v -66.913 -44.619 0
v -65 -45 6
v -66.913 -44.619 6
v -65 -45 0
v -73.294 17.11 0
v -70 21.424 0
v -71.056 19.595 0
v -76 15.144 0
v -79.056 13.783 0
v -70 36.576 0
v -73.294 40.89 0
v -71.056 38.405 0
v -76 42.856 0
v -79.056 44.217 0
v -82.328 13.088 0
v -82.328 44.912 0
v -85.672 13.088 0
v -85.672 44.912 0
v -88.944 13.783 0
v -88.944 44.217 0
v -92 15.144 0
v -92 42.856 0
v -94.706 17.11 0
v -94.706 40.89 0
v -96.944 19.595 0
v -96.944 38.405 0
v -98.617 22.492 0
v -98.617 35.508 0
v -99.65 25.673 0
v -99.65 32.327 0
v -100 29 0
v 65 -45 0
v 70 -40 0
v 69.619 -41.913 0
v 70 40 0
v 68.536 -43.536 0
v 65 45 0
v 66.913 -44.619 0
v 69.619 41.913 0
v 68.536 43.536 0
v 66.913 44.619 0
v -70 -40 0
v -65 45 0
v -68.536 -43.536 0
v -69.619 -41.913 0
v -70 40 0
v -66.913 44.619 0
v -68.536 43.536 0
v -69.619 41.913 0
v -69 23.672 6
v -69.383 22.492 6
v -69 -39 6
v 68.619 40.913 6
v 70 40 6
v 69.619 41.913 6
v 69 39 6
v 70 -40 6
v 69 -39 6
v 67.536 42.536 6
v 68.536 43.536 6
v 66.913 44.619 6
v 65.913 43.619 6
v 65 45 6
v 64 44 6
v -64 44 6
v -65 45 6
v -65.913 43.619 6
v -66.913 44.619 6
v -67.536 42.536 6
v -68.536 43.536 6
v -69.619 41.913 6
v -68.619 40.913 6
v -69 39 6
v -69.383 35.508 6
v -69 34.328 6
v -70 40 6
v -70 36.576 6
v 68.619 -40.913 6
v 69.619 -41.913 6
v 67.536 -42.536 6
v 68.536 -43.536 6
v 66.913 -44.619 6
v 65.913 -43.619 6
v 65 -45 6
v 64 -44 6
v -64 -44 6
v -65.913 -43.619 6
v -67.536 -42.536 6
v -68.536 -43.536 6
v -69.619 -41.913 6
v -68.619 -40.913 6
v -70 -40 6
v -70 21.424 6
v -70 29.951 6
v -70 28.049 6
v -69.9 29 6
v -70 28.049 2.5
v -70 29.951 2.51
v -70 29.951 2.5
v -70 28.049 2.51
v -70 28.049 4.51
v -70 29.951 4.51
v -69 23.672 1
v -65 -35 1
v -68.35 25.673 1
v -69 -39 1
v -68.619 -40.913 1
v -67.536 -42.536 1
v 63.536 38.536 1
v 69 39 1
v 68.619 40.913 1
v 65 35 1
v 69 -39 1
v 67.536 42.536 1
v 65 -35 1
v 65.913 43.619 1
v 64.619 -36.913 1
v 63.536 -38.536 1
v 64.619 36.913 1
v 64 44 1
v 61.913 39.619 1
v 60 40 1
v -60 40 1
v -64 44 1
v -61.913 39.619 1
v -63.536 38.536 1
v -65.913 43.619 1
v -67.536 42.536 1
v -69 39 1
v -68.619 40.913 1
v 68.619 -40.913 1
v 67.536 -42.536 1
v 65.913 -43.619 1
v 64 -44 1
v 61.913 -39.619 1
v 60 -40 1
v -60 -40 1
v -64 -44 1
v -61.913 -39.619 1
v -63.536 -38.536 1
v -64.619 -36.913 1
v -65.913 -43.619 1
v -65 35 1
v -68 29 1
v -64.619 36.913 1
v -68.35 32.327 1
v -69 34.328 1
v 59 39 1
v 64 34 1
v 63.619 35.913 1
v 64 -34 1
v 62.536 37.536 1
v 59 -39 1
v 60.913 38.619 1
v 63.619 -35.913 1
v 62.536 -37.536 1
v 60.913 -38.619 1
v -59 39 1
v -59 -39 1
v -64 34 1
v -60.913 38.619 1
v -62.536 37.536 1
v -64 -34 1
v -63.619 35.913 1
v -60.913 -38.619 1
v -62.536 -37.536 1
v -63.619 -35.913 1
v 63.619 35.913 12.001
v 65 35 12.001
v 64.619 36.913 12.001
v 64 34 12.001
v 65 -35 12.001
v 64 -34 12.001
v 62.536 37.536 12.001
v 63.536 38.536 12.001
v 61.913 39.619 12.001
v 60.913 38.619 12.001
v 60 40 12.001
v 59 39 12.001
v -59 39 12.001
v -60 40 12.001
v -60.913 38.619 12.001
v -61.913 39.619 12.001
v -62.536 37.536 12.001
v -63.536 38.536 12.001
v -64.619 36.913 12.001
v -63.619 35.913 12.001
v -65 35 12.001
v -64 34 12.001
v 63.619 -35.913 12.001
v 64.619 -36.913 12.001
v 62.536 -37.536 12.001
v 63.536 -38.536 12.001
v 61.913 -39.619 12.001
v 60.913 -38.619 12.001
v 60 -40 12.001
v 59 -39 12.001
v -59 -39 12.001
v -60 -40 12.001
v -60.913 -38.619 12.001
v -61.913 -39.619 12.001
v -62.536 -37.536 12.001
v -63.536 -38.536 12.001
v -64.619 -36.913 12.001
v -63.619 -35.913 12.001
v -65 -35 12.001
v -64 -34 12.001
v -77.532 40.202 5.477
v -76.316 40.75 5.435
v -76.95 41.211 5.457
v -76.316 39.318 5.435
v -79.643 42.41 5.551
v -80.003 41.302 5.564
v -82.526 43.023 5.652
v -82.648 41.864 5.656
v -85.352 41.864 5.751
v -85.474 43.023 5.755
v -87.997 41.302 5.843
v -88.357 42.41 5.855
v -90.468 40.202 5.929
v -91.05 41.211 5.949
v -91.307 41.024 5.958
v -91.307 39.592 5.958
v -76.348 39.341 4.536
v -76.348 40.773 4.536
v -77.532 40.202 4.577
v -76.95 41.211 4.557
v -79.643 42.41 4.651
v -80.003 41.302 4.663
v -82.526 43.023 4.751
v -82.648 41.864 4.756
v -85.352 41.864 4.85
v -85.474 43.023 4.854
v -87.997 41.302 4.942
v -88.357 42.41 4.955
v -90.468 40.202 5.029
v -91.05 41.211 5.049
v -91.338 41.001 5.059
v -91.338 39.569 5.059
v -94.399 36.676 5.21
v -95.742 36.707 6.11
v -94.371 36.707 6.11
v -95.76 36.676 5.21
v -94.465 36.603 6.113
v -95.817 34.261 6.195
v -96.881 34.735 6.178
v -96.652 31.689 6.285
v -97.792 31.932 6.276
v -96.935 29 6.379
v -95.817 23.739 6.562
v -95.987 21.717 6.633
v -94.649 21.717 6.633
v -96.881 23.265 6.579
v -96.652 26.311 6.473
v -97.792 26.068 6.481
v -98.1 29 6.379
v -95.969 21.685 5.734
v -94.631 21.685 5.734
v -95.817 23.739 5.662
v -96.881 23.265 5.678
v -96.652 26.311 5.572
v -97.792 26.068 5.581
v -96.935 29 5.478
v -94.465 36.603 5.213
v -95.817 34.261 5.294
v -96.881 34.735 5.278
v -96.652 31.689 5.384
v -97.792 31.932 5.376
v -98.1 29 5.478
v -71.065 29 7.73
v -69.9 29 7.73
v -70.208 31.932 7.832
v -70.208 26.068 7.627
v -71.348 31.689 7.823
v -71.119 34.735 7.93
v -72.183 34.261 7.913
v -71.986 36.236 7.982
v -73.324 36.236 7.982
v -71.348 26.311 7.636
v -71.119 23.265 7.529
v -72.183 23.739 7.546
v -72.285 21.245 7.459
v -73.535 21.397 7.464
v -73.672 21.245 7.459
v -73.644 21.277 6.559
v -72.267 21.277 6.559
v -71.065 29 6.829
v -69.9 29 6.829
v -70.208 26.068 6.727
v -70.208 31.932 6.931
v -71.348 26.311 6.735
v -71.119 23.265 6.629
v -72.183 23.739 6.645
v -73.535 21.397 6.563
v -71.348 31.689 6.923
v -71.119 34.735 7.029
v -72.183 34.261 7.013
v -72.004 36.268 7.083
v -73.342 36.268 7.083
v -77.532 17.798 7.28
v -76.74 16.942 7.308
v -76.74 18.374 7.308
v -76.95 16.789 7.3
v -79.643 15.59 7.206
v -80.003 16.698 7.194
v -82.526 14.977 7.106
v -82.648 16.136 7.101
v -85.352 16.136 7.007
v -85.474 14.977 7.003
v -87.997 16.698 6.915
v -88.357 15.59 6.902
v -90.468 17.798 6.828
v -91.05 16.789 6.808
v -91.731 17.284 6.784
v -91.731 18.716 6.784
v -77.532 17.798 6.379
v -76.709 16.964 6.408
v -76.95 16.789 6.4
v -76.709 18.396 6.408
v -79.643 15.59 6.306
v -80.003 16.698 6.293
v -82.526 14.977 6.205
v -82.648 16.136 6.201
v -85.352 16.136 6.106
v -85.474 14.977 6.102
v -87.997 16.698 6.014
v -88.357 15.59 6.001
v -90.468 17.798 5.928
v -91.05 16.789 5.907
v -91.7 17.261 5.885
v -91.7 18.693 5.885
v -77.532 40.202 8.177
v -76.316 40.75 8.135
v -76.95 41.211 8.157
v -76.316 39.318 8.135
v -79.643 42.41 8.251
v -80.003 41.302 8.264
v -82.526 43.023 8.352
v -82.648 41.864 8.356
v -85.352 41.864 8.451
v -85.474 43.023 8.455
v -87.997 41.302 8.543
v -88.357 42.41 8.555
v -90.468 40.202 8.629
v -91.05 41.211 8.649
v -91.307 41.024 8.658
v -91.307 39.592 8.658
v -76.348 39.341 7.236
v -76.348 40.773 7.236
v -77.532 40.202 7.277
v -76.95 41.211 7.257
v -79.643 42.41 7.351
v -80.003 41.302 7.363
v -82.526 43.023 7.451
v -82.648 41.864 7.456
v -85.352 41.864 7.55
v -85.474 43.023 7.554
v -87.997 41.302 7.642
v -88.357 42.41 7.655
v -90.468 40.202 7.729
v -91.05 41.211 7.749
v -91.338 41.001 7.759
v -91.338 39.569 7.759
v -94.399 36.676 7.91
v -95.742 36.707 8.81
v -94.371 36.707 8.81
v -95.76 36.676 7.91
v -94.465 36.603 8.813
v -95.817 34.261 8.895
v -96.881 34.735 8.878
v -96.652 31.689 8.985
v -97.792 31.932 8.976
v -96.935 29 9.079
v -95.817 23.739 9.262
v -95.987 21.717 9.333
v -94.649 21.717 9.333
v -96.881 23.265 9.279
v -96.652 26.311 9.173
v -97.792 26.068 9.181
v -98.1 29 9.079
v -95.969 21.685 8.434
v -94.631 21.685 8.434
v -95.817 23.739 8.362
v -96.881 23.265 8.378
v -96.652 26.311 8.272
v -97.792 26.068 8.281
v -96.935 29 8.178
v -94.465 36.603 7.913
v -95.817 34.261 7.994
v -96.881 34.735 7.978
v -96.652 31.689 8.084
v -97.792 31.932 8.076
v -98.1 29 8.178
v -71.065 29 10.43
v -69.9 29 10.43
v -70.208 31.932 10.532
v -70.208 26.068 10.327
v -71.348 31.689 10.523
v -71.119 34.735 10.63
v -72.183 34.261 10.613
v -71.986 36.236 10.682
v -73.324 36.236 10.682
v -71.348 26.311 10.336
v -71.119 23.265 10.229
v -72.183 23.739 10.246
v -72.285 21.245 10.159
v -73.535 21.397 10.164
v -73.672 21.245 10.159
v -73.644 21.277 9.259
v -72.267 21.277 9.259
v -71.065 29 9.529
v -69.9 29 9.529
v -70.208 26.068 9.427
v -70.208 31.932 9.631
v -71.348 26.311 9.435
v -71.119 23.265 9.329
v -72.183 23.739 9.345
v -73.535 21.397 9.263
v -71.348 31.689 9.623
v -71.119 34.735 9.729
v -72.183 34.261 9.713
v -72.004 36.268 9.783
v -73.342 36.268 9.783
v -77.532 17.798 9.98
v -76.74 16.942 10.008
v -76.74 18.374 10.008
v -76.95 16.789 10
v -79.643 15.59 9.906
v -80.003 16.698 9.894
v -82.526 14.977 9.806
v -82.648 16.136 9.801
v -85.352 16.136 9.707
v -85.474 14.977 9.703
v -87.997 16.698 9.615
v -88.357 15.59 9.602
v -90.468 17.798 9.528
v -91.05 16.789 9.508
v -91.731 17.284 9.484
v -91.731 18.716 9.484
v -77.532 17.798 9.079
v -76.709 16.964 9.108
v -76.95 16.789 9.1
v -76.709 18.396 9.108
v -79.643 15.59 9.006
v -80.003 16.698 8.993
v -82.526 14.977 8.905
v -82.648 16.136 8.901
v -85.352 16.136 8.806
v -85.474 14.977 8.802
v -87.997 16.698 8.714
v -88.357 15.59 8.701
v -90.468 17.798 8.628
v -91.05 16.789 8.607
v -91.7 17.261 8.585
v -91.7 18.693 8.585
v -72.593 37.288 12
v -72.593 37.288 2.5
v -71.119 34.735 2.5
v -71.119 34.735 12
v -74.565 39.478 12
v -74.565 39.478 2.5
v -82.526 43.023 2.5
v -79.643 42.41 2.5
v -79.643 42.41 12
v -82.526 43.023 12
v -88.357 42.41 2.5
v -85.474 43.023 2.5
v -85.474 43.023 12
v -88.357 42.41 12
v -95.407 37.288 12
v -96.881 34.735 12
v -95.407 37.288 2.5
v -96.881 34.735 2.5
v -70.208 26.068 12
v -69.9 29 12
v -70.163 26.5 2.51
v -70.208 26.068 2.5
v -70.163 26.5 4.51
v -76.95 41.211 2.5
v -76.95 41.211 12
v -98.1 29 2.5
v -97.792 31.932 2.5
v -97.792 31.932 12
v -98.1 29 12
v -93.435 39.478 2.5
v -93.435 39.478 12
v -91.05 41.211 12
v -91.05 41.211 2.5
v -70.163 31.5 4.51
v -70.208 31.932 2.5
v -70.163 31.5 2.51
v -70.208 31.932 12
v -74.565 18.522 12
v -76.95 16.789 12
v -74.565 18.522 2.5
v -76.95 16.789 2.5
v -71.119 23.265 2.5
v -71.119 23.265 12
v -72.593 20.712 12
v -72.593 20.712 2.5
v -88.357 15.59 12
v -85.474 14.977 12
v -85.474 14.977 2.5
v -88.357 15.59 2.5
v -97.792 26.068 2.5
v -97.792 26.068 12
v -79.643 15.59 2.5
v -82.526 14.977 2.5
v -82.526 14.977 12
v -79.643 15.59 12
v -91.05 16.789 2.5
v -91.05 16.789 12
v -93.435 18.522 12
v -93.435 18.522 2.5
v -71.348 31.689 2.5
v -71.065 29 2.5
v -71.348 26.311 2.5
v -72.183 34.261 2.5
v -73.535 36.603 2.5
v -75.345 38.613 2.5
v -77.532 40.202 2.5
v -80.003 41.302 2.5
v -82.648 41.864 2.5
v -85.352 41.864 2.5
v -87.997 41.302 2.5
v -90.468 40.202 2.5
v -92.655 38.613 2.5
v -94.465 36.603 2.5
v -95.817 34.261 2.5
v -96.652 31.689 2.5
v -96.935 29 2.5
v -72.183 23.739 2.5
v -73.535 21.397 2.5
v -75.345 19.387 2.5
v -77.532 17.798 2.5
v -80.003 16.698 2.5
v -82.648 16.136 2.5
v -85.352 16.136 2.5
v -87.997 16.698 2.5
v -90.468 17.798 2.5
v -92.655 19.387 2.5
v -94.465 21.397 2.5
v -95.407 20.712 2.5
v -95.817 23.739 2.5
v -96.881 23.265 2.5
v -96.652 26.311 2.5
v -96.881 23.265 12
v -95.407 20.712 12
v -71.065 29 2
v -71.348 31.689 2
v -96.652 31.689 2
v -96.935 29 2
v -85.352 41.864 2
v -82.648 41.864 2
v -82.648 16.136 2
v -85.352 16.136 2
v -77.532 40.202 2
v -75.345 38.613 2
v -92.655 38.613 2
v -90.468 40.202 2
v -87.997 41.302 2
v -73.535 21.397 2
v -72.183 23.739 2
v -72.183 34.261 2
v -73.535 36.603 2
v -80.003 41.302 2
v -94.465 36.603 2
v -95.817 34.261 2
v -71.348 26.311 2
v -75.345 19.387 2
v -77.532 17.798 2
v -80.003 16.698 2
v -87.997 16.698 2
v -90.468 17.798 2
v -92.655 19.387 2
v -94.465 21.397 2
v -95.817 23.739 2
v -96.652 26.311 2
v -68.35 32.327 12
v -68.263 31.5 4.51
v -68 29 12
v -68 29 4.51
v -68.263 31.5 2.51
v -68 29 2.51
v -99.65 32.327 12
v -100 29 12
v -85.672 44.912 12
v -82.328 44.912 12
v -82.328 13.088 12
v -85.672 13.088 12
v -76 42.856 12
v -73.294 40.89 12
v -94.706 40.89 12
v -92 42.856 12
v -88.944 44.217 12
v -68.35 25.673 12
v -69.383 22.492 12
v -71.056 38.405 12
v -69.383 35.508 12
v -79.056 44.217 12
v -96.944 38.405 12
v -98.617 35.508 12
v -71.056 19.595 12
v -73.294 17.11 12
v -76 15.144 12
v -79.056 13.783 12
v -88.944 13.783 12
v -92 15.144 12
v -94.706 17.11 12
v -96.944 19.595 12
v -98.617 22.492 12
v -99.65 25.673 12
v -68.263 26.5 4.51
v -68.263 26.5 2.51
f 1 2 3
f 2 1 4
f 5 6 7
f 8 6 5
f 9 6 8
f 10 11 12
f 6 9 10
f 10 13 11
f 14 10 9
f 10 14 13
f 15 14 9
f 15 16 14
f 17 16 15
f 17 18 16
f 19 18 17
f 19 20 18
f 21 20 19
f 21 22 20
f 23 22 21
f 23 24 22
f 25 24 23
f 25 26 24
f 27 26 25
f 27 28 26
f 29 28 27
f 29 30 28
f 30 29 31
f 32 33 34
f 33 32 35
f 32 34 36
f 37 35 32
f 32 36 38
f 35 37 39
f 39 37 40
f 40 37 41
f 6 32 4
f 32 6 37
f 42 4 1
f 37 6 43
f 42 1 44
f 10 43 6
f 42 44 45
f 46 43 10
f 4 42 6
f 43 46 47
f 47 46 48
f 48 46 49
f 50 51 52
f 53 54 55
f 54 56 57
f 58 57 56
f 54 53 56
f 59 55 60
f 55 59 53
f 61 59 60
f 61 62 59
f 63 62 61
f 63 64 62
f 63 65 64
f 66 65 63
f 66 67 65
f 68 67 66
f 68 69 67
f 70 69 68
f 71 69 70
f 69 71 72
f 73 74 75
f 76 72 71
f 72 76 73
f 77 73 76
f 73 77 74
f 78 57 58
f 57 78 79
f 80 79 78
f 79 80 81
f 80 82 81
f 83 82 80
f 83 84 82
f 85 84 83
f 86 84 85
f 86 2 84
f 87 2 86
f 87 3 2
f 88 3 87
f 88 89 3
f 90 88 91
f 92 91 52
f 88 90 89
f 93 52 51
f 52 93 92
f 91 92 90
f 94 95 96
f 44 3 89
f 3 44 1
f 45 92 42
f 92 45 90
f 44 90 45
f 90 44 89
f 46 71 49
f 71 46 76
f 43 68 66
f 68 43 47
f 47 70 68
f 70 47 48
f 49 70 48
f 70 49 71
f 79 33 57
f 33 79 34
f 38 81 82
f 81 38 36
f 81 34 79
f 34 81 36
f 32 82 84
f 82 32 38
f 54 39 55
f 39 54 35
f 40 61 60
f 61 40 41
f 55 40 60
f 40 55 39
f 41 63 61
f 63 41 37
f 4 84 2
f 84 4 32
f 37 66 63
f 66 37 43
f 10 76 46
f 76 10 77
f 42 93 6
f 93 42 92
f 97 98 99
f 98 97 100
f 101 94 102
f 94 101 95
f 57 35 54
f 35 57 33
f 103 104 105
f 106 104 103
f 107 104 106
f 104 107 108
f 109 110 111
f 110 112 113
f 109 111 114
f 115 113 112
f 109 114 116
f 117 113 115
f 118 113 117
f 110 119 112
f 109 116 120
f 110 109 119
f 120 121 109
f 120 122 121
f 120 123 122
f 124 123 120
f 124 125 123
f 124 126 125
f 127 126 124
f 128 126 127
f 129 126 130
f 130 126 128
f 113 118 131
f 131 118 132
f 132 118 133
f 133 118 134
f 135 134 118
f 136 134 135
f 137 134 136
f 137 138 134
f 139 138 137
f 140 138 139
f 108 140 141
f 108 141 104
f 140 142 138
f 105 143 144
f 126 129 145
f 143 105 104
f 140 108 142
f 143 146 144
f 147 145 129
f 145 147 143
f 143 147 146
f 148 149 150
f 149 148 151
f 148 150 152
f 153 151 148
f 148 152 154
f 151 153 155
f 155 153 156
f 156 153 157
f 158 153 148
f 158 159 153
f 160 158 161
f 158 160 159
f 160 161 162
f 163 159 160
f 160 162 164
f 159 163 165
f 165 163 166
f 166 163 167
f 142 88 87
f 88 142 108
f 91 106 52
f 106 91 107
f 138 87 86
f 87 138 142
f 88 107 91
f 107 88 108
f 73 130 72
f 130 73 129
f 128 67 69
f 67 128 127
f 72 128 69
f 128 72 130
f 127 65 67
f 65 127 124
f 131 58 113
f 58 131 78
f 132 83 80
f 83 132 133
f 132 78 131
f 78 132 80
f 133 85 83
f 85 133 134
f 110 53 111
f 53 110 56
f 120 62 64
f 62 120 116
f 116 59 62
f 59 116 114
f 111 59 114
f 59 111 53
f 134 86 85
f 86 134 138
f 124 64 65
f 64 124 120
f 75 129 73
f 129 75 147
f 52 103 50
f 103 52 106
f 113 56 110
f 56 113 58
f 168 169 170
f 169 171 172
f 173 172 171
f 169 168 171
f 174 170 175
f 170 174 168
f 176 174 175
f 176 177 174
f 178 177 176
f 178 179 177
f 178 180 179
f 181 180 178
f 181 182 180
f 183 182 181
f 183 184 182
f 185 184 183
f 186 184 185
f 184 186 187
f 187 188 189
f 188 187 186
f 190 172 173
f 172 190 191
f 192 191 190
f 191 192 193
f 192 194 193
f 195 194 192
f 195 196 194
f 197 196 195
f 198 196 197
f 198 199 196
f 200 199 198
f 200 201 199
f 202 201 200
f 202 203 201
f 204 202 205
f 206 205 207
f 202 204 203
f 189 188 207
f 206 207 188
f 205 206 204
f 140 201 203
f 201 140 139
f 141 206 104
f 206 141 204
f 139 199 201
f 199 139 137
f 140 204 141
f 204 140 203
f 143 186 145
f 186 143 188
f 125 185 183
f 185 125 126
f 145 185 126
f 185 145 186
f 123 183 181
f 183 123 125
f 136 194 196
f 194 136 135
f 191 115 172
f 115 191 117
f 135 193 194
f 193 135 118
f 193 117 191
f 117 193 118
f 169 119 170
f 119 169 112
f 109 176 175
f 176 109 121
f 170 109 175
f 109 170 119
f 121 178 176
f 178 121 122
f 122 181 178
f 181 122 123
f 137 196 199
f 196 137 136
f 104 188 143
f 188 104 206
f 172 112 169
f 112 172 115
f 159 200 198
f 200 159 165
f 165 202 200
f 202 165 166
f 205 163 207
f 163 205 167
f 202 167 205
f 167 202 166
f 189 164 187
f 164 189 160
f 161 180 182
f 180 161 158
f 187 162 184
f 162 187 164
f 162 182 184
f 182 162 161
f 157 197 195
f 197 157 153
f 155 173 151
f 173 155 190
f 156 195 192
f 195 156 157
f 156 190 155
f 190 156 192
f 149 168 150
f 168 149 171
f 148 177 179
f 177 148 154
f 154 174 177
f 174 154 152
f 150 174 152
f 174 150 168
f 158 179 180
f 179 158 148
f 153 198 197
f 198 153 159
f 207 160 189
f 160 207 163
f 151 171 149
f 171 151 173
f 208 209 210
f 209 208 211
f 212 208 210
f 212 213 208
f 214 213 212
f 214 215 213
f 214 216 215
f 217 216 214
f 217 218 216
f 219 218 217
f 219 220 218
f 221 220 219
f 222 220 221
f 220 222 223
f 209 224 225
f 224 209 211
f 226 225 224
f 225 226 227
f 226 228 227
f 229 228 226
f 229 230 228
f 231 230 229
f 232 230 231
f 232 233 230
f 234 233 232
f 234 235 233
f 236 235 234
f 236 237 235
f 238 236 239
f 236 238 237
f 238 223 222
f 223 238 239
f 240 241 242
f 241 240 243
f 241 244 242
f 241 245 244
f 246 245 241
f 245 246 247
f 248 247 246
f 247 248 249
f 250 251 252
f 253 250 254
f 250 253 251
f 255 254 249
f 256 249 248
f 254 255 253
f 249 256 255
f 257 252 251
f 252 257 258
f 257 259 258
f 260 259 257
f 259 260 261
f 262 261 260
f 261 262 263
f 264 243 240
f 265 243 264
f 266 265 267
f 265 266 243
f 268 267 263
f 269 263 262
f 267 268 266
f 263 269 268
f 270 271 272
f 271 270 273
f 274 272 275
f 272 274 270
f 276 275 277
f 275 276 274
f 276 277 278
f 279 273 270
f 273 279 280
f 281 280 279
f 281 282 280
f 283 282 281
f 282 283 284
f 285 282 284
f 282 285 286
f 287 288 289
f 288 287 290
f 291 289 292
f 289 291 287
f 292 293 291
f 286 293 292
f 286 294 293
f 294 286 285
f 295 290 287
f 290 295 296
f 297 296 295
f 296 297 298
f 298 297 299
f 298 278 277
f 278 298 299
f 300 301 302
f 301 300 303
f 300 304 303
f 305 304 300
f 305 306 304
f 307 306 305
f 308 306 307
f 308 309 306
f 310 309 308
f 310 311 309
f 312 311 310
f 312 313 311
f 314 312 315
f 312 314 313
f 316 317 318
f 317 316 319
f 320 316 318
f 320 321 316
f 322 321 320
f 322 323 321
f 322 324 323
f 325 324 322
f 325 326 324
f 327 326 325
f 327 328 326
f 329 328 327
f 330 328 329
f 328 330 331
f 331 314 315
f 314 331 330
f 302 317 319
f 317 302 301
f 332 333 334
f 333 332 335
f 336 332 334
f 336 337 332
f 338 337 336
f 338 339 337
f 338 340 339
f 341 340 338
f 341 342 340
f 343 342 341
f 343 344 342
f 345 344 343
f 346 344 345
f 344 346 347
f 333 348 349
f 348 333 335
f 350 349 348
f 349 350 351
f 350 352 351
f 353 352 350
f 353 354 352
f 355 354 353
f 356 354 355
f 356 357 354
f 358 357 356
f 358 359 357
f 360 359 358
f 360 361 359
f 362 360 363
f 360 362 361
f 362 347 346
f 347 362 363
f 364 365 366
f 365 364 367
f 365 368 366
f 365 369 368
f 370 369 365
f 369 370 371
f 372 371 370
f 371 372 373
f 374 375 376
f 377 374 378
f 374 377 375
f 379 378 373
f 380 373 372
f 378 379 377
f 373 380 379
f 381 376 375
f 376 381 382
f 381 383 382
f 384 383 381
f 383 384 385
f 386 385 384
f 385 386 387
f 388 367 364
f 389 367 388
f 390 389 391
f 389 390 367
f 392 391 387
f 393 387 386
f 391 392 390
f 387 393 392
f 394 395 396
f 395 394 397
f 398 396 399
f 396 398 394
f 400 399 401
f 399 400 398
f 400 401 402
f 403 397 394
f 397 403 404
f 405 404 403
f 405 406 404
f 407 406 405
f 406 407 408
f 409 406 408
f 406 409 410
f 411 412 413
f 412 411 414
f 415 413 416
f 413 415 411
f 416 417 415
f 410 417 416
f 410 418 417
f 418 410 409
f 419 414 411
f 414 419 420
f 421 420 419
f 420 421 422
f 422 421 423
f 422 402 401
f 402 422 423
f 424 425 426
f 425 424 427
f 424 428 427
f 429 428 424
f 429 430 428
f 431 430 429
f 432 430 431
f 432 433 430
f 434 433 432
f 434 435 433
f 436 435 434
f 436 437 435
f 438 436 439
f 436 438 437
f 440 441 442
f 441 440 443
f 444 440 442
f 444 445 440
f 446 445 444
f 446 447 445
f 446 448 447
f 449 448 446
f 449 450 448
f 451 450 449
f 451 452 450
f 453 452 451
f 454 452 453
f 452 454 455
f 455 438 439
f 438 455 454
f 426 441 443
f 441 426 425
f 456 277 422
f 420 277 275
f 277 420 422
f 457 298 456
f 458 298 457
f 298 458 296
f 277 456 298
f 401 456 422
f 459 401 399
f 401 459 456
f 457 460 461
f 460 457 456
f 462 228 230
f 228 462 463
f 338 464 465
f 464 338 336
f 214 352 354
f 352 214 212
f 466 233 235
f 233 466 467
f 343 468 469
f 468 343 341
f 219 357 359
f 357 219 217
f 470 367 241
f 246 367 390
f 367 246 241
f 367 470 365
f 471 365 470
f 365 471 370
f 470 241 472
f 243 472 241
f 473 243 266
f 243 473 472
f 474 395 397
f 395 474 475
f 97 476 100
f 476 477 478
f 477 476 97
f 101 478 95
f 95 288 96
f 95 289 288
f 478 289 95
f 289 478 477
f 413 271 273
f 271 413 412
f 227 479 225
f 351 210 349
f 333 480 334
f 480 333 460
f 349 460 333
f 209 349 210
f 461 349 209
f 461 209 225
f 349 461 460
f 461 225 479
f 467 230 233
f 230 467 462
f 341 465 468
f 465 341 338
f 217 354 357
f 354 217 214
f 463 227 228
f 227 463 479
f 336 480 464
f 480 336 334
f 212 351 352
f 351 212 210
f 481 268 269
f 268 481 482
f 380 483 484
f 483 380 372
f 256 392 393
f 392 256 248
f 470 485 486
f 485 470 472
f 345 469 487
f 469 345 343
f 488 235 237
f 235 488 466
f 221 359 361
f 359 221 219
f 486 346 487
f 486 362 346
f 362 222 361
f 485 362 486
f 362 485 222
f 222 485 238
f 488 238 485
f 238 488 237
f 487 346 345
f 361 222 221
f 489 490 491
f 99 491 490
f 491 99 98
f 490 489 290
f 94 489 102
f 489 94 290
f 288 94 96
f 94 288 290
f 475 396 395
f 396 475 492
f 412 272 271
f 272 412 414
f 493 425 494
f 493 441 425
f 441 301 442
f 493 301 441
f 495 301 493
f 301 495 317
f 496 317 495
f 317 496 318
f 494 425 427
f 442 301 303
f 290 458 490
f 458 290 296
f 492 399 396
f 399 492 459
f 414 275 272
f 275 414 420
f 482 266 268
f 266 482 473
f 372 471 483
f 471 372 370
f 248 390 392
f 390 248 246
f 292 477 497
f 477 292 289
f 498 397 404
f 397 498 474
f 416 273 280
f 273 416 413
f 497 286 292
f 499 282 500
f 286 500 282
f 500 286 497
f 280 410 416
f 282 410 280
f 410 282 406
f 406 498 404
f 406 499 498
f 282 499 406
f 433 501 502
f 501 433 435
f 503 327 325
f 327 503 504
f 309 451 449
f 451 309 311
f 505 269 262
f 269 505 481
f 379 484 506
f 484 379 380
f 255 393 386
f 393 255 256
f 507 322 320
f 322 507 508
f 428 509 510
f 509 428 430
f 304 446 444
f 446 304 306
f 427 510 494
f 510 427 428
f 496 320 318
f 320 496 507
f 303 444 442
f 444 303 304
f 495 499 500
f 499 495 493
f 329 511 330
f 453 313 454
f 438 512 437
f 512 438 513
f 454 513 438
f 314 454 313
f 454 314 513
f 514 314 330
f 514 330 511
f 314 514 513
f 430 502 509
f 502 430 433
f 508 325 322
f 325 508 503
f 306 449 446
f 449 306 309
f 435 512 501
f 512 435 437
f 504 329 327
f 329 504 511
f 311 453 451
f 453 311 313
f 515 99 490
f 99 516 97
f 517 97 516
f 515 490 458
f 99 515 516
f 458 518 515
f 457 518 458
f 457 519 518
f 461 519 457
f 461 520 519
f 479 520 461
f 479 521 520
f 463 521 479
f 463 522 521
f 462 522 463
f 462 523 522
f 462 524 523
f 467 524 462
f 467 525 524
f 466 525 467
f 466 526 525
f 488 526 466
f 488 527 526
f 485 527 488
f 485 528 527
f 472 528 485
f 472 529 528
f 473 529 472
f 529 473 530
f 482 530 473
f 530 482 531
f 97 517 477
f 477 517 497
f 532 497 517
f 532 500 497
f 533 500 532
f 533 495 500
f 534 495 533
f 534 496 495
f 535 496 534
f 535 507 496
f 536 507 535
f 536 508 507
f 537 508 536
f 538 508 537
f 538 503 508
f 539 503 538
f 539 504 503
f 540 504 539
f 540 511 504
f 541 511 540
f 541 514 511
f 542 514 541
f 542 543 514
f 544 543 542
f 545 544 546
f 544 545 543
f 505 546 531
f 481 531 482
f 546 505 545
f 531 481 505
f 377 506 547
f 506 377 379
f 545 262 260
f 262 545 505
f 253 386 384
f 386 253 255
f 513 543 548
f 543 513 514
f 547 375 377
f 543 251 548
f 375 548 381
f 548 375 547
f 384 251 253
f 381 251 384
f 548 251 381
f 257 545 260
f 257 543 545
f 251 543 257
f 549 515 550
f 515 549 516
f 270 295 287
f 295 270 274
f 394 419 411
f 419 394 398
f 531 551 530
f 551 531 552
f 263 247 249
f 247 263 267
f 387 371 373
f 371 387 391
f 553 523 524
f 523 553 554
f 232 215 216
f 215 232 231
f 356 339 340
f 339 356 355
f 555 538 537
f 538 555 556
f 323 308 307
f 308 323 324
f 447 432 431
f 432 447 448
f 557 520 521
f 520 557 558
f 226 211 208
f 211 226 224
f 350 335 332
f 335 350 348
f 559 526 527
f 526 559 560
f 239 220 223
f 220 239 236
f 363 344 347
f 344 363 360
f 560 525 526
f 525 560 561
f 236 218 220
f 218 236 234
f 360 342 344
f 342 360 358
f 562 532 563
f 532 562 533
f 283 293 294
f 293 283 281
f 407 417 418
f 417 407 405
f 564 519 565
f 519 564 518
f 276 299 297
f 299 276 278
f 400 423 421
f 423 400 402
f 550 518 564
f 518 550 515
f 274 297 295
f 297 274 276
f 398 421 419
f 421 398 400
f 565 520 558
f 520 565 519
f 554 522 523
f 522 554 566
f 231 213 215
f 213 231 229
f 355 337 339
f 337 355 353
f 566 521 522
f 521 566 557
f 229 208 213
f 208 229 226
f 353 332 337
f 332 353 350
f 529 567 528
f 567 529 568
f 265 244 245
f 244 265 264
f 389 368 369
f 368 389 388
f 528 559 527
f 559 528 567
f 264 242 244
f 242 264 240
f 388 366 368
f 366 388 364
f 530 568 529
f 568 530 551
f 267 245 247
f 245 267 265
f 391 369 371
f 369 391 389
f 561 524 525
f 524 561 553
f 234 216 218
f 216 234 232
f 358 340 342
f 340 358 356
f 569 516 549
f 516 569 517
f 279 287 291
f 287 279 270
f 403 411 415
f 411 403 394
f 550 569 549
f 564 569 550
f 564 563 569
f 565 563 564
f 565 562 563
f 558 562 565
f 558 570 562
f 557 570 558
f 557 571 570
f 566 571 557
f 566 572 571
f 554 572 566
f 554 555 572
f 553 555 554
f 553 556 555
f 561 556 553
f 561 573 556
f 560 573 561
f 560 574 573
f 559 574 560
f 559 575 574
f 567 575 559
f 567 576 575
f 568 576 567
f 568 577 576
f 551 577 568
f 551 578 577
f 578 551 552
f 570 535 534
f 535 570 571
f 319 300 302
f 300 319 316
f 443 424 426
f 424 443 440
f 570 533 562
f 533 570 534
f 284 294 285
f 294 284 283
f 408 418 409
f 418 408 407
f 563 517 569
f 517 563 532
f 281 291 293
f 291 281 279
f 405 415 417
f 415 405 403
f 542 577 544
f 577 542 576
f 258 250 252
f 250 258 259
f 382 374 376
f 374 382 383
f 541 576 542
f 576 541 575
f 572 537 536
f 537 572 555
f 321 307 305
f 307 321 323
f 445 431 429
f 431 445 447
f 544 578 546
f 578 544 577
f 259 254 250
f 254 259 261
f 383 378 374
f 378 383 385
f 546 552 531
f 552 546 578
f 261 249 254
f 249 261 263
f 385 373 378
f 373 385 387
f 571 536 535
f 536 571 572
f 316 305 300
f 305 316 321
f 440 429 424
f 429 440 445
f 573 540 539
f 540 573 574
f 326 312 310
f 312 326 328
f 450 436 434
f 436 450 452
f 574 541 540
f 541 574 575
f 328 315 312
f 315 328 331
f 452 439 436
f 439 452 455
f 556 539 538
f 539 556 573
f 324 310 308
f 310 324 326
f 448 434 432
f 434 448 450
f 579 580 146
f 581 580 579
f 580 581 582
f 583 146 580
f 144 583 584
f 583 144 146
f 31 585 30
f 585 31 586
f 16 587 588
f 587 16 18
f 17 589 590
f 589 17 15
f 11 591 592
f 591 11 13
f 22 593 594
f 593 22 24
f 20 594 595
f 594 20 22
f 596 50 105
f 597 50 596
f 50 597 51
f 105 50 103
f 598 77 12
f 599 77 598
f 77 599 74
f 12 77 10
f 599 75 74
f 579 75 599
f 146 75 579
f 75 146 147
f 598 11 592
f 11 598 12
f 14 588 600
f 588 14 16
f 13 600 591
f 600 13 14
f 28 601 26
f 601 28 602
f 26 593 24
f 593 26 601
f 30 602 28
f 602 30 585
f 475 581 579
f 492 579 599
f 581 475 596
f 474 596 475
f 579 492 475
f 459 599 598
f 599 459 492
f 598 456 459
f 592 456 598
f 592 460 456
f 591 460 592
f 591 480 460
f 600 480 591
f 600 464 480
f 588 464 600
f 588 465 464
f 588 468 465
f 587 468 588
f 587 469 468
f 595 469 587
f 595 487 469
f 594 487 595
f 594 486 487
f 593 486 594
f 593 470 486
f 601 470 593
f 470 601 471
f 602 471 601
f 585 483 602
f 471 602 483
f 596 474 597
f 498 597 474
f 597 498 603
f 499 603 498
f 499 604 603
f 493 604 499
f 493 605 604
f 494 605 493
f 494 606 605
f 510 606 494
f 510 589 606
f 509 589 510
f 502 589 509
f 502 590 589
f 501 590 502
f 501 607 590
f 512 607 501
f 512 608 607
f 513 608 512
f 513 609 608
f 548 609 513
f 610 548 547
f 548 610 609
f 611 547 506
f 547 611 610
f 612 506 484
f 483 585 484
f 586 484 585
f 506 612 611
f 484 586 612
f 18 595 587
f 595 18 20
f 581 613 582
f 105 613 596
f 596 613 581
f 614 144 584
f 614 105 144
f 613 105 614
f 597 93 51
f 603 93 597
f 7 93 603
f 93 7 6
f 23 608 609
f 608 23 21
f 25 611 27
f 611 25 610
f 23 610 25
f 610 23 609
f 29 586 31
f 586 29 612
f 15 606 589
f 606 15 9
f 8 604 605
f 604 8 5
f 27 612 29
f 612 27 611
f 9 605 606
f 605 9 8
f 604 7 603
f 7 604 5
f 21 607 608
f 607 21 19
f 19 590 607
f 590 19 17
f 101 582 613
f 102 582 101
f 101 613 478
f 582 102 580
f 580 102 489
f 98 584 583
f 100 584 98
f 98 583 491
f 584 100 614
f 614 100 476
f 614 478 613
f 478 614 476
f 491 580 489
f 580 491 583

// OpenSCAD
// file: lib/2LBottleHolder.scad
// 2 Liter Bottle Holder
//
// (c) 2013 Laird Popkin, based on http://www.threadspecs.com/assets/Threadspecs/ISBT-PCO-1881-Finish-3784253-18.pdf.
// Credit to eagleapex for creating and then deleting http://www.thingiverse.com/thing:10489
// which inspired me to create this.

part="cap"; // "threads" for the part to print, "neck" for the part to subtract from your part
clearance=0.4; // tune to get the right 'fit' for your printer

// Bottle params

bottleID=25.07;
bottleOD=27.4;
bottlePitch=2.7;
bottleHeight=9;
bottleAngle=2;
threadLen=15;

// holder params

holderOD=bottleOD+5;
holderOR=holderOD/2;

// funnel params

funnelOD=100;
funnelWall=2;

// Bottle Computations

threadHeight = bottlePitch/3;
echo("thread height ",threadHeight);
echo("thread depth ",(bottleOD-bottleID)/2);

module bottleNeck() {
	difference() {
		union() {
			translate([0,0,-0.5]) cylinder(r=bottleOD/2+clearance,h=bottleHeight+1);
			}
		union() {
			rotate([0,bottleAngle,0]) translate([-threadLen/2,0,bottleHeight/2]) cube([threadLen,bottleOD,threadHeight]);
			rotate([0,bottleAngle,90]) translate([-threadLen/2,0,bottleHeight/2+bottlePitch/4]) cube([threadLen,bottleOD,threadHeight]);
			rotate([0,bottleAngle,-90]) translate([-threadLen/2,0,bottleHeight/2+bottlePitch*3/4]) cube([threadLen,bottleOD,threadHeight]);
			rotate([0,bottleAngle,180]) translate([-threadLen/2,0,bottleHeight/2+bottlePitch/2]) cube([threadLen,bottleOD,threadHeight]);
			translate([0,0,-bottlePitch]) {
				rotate([0,bottleAngle,0]) translate([-threadLen/2,0,bottleHeight/2]) cube([threadLen,bottleOD,threadHeight]);
				rotate([0,bottleAngle,90]) translate([-threadLen/2,0,bottleHeight/2+bottlePitch/4]) cube([threadLen,bottleOD,threadHeight]);
				rotate([0,bottleAngle,-90]) translate([-threadLen/2,0,bottleHeight/2+bottlePitch*3/4]) cube([threadLen,bottleOD,threadHeight]);
				rotate([0,bottleAngle,180]) translate([-threadLen/2,0,bottleHeight/2+bottlePitch/2]) cube([threadLen,bottleOD,threadHeight]);
				}
			//translate([0,0,bottleHeight/2+bottlePitch/2]) rotate([0,0,90]) cube([10,bottleOD,threadHeight], center=true);
			}
		}
	translate([0,0,-1]) cylinder(r=bottleID/2+clearance,h=bottleHeight+2);
	}

module bottleHolder() {
	difference() {
		cylinder(r=holderOR,h=bottleHeight);
		bottleNeck();
		}
	}

module bottleCap() {
	translate([0,0,1]) bottleHolder();
	cylinder(r=holderOR, h=1);
	}

module funnel() {
	translate([0,0,bottleHeight]) difference() {
		difference() {
			cylinder(r=holderOR, h=funnelWall);
			translate([0,0,-.1]) cylinder(r=bottleID/2, h=funnelWall+.2);
			}
		}
	translate([0,0,bottleHeight+funnelWall]) difference() {
		cylinder(r1=holderOR,r2=funnelOD, h=funnelOD-bottleOD);
		translate([0,0,-.1]) cylinder(r1=bottleID/2,r2=funnelOD-funnelWall, h=funnelOD-bottleOD+.2);
		}
	bottleHolder();
	}

/*if (part=="threads") bottleHolder();;
if (part=="neck") bottleNeck();
if (part=="funnel") funnel();
if (part=="holder") bottleHolder();
if (part=="cap") bottleCap();*/
// main file
use <MCAD/boxes.scad>
include <lib/2LBottleHolder.scad>;


module moat() {
  color([0.1,0.5,0.2]) 
  translate([0,0,4])
  difference() {
    translate([0, 0, -1])
      roundedBox([140, 90, 6], 5, true);
    roundedBox([138, 88, 6], 5, true);
  }
}

module waterfiller() {
  color([0.5, 0.1, 0.2])
  difference() {
    cylinder(d=32, h=12);
    translate([0,0,3])
      bottleNeck();
  }
}

module bowl() {
  color([0.1, 0.2, 0.5])
  translate([0, 0, 6.001])
  difference() {
    roundedBox([130, 80, 12], 5, true);
    roundedBox([128, 78, 13], 5, true);
  }
}

module gap() {
  color([0.9, 0.9, 0.2])
  cube([5, 5, 2]);
}


difference() {
  union() {
    moat();
    bowl();
    translate([-84, 29, 0])
      waterfiller();
  }
  translate([-72, 26.5, 2.51])
    gap();
}
